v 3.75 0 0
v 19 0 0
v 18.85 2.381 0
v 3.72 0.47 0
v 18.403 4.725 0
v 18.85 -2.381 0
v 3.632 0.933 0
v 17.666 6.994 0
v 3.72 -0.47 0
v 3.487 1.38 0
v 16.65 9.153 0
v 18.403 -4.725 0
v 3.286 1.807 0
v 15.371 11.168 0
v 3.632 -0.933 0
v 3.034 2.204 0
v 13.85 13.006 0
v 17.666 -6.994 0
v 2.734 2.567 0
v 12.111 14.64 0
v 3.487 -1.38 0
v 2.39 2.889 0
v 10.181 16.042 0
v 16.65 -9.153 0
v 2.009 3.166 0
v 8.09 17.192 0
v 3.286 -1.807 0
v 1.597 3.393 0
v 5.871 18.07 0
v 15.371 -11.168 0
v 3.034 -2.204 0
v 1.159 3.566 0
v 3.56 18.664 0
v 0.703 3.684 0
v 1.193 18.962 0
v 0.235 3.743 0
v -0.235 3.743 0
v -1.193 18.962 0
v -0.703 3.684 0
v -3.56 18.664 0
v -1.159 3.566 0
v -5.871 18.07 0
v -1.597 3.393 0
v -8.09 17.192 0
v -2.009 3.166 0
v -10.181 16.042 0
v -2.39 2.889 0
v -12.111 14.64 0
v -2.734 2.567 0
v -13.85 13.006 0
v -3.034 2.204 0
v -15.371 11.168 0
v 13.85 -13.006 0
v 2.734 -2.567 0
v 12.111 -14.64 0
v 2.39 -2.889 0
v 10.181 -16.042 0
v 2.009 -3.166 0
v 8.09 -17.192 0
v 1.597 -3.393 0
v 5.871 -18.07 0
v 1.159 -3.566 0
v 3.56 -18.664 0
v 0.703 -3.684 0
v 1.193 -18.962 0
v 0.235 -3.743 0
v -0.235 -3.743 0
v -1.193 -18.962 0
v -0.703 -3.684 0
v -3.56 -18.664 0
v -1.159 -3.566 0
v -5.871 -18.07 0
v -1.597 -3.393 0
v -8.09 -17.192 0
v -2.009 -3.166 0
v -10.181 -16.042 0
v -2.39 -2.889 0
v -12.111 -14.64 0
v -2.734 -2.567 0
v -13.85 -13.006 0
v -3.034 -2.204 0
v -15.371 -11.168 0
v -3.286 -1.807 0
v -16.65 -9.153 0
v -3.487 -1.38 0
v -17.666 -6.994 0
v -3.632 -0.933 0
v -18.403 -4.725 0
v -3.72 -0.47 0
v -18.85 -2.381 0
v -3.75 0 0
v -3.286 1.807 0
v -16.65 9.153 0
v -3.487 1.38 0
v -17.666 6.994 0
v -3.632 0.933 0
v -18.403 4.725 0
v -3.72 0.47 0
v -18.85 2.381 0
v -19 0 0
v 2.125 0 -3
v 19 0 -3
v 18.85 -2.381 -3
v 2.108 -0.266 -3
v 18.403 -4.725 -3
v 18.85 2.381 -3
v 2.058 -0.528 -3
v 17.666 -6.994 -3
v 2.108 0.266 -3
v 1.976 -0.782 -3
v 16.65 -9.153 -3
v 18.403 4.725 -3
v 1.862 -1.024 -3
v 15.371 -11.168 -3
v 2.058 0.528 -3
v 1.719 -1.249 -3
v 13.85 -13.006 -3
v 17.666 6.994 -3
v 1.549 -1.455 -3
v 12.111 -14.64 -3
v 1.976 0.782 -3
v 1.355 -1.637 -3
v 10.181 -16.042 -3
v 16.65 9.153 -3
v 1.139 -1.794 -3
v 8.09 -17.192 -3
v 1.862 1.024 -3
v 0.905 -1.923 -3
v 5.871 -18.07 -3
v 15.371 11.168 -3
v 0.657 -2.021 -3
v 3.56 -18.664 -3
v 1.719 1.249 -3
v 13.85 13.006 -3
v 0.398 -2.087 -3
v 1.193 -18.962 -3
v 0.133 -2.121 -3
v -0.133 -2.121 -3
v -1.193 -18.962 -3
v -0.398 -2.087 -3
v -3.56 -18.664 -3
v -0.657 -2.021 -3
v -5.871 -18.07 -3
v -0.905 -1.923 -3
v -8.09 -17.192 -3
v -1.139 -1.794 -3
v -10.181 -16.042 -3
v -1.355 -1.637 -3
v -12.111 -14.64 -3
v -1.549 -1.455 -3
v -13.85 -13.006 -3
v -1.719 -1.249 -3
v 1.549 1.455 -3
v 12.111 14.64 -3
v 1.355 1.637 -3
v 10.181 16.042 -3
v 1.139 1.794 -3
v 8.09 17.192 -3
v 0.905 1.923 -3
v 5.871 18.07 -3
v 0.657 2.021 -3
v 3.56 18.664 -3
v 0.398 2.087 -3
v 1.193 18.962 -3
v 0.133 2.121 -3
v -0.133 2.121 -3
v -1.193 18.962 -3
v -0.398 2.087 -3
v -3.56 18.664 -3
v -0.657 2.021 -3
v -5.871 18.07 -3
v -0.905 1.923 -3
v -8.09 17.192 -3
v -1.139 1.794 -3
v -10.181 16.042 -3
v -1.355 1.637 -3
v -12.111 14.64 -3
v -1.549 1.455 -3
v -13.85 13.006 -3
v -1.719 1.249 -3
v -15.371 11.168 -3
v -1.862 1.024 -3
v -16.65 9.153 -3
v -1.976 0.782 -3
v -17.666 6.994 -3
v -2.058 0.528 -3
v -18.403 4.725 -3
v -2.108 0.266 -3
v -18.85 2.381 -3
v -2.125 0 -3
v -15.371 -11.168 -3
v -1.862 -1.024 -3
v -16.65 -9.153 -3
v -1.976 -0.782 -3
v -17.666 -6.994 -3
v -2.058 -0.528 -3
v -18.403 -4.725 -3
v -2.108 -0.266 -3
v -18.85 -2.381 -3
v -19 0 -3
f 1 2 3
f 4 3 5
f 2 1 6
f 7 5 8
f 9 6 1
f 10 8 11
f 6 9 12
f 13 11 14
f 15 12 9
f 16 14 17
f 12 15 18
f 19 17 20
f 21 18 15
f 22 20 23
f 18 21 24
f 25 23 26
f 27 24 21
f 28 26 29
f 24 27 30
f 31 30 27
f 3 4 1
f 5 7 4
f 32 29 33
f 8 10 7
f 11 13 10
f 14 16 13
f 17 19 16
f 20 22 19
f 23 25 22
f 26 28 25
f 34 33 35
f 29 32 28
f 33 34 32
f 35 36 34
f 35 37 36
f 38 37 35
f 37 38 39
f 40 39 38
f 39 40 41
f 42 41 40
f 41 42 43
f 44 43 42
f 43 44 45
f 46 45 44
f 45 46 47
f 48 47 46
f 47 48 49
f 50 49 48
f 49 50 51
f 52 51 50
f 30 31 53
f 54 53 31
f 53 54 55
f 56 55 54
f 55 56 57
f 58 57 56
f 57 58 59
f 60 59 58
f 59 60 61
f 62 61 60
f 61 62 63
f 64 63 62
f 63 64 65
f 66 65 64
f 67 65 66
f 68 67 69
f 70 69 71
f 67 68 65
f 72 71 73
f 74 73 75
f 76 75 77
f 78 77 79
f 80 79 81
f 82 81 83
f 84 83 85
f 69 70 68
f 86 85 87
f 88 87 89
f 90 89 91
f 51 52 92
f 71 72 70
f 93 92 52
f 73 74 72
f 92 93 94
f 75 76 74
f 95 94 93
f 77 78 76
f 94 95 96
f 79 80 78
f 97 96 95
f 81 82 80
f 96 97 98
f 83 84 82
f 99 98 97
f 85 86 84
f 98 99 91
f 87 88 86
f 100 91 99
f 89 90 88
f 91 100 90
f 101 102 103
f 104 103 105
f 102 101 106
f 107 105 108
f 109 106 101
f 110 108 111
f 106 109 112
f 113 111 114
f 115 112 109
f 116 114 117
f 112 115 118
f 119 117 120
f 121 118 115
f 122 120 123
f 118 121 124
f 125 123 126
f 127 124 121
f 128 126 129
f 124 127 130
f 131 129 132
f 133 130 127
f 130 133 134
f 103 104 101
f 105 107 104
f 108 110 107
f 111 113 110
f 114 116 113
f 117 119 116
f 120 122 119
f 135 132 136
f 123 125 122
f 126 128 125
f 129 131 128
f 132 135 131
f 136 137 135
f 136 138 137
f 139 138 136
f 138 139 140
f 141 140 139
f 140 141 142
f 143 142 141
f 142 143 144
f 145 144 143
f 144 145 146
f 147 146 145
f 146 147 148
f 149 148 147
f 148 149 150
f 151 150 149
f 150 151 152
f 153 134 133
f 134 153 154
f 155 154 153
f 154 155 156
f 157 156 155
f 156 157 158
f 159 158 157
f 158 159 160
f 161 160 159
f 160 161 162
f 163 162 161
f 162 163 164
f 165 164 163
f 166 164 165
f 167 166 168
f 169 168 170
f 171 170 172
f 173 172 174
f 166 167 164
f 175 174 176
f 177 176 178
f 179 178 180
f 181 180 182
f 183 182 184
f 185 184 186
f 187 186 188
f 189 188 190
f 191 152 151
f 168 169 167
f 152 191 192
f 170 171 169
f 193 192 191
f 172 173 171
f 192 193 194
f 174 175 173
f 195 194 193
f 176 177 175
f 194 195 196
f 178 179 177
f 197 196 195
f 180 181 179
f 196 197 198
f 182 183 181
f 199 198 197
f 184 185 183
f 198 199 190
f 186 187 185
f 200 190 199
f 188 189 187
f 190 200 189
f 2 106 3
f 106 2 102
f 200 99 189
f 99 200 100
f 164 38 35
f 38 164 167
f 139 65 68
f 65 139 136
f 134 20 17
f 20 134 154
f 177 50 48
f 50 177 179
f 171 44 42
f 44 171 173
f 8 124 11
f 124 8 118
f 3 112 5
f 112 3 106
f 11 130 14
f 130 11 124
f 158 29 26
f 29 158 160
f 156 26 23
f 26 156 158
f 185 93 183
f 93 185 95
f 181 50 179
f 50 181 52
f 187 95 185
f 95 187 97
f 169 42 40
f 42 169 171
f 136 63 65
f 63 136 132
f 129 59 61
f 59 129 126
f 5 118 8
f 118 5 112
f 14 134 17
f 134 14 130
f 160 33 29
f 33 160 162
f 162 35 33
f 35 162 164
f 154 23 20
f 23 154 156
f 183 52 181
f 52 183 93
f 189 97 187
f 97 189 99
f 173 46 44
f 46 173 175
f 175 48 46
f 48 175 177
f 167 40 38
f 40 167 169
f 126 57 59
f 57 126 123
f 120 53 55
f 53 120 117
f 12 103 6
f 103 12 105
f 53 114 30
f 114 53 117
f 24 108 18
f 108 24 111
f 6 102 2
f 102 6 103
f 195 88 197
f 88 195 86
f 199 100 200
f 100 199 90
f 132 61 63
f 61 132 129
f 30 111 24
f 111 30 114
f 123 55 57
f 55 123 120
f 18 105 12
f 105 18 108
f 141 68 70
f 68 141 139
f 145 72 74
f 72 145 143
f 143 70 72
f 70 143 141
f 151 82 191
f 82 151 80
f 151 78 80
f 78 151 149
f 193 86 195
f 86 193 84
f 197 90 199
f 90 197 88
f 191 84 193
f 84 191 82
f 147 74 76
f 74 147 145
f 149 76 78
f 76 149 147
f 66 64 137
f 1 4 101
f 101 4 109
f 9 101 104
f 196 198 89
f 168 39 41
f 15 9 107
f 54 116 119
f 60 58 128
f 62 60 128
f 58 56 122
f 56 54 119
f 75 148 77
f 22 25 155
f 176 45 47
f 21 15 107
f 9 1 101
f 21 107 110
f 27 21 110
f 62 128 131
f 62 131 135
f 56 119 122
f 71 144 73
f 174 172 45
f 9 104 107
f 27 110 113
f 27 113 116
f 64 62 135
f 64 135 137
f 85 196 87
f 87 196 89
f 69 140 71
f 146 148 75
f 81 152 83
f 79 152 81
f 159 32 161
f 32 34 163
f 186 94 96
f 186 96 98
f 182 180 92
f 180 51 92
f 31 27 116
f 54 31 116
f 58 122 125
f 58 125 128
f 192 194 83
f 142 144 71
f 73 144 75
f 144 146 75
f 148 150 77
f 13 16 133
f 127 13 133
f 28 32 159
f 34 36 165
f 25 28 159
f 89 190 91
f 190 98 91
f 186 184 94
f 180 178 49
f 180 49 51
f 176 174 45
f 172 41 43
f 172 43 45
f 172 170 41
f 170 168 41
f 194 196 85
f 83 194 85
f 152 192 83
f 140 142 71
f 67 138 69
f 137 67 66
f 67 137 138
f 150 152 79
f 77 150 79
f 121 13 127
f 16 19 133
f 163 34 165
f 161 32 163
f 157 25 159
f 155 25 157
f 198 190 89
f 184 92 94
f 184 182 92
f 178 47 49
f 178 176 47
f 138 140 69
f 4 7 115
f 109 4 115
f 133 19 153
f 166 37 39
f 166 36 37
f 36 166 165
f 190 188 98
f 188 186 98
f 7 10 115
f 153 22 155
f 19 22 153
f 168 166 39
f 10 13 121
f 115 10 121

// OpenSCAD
$fn = 50;


difference() {
	union() {
		translate(v = [0, 0, -3.0000000000]) {
			cylinder(h = 3, r = 10.0000000000);
		}
		translate(v = [0, 0, -3.0000000000]) {
			cylinder(h = 3, r = 19.0000000000);
		}
	}
	union() {
		translate(v = [0, 0, 0]) {
			rotate(a = [0, 0, 0]) {
				difference() {
					union() {
						#translate(v = [0, 0, -3.0000000000]) {
							cylinder(h = 3, r = 2.0000000000);
						}
						#translate(v = [0, 0, -3]) {
							cylinder(h = 3, r = 10.0000000000, r1 = 2.1250000000, r2 = 3.7500000000);
						}
						#translate(v = [0, 0, -3.0000000000]) {
							cylinder(h = 3, r = 2.1250000000);
						}
						#translate(v = [0, 0, -3.0000000000]) {
							cylinder(h = 3, r = 2.0000000000);
						}
					}
					union();
				}
			}
		}
	}
}
